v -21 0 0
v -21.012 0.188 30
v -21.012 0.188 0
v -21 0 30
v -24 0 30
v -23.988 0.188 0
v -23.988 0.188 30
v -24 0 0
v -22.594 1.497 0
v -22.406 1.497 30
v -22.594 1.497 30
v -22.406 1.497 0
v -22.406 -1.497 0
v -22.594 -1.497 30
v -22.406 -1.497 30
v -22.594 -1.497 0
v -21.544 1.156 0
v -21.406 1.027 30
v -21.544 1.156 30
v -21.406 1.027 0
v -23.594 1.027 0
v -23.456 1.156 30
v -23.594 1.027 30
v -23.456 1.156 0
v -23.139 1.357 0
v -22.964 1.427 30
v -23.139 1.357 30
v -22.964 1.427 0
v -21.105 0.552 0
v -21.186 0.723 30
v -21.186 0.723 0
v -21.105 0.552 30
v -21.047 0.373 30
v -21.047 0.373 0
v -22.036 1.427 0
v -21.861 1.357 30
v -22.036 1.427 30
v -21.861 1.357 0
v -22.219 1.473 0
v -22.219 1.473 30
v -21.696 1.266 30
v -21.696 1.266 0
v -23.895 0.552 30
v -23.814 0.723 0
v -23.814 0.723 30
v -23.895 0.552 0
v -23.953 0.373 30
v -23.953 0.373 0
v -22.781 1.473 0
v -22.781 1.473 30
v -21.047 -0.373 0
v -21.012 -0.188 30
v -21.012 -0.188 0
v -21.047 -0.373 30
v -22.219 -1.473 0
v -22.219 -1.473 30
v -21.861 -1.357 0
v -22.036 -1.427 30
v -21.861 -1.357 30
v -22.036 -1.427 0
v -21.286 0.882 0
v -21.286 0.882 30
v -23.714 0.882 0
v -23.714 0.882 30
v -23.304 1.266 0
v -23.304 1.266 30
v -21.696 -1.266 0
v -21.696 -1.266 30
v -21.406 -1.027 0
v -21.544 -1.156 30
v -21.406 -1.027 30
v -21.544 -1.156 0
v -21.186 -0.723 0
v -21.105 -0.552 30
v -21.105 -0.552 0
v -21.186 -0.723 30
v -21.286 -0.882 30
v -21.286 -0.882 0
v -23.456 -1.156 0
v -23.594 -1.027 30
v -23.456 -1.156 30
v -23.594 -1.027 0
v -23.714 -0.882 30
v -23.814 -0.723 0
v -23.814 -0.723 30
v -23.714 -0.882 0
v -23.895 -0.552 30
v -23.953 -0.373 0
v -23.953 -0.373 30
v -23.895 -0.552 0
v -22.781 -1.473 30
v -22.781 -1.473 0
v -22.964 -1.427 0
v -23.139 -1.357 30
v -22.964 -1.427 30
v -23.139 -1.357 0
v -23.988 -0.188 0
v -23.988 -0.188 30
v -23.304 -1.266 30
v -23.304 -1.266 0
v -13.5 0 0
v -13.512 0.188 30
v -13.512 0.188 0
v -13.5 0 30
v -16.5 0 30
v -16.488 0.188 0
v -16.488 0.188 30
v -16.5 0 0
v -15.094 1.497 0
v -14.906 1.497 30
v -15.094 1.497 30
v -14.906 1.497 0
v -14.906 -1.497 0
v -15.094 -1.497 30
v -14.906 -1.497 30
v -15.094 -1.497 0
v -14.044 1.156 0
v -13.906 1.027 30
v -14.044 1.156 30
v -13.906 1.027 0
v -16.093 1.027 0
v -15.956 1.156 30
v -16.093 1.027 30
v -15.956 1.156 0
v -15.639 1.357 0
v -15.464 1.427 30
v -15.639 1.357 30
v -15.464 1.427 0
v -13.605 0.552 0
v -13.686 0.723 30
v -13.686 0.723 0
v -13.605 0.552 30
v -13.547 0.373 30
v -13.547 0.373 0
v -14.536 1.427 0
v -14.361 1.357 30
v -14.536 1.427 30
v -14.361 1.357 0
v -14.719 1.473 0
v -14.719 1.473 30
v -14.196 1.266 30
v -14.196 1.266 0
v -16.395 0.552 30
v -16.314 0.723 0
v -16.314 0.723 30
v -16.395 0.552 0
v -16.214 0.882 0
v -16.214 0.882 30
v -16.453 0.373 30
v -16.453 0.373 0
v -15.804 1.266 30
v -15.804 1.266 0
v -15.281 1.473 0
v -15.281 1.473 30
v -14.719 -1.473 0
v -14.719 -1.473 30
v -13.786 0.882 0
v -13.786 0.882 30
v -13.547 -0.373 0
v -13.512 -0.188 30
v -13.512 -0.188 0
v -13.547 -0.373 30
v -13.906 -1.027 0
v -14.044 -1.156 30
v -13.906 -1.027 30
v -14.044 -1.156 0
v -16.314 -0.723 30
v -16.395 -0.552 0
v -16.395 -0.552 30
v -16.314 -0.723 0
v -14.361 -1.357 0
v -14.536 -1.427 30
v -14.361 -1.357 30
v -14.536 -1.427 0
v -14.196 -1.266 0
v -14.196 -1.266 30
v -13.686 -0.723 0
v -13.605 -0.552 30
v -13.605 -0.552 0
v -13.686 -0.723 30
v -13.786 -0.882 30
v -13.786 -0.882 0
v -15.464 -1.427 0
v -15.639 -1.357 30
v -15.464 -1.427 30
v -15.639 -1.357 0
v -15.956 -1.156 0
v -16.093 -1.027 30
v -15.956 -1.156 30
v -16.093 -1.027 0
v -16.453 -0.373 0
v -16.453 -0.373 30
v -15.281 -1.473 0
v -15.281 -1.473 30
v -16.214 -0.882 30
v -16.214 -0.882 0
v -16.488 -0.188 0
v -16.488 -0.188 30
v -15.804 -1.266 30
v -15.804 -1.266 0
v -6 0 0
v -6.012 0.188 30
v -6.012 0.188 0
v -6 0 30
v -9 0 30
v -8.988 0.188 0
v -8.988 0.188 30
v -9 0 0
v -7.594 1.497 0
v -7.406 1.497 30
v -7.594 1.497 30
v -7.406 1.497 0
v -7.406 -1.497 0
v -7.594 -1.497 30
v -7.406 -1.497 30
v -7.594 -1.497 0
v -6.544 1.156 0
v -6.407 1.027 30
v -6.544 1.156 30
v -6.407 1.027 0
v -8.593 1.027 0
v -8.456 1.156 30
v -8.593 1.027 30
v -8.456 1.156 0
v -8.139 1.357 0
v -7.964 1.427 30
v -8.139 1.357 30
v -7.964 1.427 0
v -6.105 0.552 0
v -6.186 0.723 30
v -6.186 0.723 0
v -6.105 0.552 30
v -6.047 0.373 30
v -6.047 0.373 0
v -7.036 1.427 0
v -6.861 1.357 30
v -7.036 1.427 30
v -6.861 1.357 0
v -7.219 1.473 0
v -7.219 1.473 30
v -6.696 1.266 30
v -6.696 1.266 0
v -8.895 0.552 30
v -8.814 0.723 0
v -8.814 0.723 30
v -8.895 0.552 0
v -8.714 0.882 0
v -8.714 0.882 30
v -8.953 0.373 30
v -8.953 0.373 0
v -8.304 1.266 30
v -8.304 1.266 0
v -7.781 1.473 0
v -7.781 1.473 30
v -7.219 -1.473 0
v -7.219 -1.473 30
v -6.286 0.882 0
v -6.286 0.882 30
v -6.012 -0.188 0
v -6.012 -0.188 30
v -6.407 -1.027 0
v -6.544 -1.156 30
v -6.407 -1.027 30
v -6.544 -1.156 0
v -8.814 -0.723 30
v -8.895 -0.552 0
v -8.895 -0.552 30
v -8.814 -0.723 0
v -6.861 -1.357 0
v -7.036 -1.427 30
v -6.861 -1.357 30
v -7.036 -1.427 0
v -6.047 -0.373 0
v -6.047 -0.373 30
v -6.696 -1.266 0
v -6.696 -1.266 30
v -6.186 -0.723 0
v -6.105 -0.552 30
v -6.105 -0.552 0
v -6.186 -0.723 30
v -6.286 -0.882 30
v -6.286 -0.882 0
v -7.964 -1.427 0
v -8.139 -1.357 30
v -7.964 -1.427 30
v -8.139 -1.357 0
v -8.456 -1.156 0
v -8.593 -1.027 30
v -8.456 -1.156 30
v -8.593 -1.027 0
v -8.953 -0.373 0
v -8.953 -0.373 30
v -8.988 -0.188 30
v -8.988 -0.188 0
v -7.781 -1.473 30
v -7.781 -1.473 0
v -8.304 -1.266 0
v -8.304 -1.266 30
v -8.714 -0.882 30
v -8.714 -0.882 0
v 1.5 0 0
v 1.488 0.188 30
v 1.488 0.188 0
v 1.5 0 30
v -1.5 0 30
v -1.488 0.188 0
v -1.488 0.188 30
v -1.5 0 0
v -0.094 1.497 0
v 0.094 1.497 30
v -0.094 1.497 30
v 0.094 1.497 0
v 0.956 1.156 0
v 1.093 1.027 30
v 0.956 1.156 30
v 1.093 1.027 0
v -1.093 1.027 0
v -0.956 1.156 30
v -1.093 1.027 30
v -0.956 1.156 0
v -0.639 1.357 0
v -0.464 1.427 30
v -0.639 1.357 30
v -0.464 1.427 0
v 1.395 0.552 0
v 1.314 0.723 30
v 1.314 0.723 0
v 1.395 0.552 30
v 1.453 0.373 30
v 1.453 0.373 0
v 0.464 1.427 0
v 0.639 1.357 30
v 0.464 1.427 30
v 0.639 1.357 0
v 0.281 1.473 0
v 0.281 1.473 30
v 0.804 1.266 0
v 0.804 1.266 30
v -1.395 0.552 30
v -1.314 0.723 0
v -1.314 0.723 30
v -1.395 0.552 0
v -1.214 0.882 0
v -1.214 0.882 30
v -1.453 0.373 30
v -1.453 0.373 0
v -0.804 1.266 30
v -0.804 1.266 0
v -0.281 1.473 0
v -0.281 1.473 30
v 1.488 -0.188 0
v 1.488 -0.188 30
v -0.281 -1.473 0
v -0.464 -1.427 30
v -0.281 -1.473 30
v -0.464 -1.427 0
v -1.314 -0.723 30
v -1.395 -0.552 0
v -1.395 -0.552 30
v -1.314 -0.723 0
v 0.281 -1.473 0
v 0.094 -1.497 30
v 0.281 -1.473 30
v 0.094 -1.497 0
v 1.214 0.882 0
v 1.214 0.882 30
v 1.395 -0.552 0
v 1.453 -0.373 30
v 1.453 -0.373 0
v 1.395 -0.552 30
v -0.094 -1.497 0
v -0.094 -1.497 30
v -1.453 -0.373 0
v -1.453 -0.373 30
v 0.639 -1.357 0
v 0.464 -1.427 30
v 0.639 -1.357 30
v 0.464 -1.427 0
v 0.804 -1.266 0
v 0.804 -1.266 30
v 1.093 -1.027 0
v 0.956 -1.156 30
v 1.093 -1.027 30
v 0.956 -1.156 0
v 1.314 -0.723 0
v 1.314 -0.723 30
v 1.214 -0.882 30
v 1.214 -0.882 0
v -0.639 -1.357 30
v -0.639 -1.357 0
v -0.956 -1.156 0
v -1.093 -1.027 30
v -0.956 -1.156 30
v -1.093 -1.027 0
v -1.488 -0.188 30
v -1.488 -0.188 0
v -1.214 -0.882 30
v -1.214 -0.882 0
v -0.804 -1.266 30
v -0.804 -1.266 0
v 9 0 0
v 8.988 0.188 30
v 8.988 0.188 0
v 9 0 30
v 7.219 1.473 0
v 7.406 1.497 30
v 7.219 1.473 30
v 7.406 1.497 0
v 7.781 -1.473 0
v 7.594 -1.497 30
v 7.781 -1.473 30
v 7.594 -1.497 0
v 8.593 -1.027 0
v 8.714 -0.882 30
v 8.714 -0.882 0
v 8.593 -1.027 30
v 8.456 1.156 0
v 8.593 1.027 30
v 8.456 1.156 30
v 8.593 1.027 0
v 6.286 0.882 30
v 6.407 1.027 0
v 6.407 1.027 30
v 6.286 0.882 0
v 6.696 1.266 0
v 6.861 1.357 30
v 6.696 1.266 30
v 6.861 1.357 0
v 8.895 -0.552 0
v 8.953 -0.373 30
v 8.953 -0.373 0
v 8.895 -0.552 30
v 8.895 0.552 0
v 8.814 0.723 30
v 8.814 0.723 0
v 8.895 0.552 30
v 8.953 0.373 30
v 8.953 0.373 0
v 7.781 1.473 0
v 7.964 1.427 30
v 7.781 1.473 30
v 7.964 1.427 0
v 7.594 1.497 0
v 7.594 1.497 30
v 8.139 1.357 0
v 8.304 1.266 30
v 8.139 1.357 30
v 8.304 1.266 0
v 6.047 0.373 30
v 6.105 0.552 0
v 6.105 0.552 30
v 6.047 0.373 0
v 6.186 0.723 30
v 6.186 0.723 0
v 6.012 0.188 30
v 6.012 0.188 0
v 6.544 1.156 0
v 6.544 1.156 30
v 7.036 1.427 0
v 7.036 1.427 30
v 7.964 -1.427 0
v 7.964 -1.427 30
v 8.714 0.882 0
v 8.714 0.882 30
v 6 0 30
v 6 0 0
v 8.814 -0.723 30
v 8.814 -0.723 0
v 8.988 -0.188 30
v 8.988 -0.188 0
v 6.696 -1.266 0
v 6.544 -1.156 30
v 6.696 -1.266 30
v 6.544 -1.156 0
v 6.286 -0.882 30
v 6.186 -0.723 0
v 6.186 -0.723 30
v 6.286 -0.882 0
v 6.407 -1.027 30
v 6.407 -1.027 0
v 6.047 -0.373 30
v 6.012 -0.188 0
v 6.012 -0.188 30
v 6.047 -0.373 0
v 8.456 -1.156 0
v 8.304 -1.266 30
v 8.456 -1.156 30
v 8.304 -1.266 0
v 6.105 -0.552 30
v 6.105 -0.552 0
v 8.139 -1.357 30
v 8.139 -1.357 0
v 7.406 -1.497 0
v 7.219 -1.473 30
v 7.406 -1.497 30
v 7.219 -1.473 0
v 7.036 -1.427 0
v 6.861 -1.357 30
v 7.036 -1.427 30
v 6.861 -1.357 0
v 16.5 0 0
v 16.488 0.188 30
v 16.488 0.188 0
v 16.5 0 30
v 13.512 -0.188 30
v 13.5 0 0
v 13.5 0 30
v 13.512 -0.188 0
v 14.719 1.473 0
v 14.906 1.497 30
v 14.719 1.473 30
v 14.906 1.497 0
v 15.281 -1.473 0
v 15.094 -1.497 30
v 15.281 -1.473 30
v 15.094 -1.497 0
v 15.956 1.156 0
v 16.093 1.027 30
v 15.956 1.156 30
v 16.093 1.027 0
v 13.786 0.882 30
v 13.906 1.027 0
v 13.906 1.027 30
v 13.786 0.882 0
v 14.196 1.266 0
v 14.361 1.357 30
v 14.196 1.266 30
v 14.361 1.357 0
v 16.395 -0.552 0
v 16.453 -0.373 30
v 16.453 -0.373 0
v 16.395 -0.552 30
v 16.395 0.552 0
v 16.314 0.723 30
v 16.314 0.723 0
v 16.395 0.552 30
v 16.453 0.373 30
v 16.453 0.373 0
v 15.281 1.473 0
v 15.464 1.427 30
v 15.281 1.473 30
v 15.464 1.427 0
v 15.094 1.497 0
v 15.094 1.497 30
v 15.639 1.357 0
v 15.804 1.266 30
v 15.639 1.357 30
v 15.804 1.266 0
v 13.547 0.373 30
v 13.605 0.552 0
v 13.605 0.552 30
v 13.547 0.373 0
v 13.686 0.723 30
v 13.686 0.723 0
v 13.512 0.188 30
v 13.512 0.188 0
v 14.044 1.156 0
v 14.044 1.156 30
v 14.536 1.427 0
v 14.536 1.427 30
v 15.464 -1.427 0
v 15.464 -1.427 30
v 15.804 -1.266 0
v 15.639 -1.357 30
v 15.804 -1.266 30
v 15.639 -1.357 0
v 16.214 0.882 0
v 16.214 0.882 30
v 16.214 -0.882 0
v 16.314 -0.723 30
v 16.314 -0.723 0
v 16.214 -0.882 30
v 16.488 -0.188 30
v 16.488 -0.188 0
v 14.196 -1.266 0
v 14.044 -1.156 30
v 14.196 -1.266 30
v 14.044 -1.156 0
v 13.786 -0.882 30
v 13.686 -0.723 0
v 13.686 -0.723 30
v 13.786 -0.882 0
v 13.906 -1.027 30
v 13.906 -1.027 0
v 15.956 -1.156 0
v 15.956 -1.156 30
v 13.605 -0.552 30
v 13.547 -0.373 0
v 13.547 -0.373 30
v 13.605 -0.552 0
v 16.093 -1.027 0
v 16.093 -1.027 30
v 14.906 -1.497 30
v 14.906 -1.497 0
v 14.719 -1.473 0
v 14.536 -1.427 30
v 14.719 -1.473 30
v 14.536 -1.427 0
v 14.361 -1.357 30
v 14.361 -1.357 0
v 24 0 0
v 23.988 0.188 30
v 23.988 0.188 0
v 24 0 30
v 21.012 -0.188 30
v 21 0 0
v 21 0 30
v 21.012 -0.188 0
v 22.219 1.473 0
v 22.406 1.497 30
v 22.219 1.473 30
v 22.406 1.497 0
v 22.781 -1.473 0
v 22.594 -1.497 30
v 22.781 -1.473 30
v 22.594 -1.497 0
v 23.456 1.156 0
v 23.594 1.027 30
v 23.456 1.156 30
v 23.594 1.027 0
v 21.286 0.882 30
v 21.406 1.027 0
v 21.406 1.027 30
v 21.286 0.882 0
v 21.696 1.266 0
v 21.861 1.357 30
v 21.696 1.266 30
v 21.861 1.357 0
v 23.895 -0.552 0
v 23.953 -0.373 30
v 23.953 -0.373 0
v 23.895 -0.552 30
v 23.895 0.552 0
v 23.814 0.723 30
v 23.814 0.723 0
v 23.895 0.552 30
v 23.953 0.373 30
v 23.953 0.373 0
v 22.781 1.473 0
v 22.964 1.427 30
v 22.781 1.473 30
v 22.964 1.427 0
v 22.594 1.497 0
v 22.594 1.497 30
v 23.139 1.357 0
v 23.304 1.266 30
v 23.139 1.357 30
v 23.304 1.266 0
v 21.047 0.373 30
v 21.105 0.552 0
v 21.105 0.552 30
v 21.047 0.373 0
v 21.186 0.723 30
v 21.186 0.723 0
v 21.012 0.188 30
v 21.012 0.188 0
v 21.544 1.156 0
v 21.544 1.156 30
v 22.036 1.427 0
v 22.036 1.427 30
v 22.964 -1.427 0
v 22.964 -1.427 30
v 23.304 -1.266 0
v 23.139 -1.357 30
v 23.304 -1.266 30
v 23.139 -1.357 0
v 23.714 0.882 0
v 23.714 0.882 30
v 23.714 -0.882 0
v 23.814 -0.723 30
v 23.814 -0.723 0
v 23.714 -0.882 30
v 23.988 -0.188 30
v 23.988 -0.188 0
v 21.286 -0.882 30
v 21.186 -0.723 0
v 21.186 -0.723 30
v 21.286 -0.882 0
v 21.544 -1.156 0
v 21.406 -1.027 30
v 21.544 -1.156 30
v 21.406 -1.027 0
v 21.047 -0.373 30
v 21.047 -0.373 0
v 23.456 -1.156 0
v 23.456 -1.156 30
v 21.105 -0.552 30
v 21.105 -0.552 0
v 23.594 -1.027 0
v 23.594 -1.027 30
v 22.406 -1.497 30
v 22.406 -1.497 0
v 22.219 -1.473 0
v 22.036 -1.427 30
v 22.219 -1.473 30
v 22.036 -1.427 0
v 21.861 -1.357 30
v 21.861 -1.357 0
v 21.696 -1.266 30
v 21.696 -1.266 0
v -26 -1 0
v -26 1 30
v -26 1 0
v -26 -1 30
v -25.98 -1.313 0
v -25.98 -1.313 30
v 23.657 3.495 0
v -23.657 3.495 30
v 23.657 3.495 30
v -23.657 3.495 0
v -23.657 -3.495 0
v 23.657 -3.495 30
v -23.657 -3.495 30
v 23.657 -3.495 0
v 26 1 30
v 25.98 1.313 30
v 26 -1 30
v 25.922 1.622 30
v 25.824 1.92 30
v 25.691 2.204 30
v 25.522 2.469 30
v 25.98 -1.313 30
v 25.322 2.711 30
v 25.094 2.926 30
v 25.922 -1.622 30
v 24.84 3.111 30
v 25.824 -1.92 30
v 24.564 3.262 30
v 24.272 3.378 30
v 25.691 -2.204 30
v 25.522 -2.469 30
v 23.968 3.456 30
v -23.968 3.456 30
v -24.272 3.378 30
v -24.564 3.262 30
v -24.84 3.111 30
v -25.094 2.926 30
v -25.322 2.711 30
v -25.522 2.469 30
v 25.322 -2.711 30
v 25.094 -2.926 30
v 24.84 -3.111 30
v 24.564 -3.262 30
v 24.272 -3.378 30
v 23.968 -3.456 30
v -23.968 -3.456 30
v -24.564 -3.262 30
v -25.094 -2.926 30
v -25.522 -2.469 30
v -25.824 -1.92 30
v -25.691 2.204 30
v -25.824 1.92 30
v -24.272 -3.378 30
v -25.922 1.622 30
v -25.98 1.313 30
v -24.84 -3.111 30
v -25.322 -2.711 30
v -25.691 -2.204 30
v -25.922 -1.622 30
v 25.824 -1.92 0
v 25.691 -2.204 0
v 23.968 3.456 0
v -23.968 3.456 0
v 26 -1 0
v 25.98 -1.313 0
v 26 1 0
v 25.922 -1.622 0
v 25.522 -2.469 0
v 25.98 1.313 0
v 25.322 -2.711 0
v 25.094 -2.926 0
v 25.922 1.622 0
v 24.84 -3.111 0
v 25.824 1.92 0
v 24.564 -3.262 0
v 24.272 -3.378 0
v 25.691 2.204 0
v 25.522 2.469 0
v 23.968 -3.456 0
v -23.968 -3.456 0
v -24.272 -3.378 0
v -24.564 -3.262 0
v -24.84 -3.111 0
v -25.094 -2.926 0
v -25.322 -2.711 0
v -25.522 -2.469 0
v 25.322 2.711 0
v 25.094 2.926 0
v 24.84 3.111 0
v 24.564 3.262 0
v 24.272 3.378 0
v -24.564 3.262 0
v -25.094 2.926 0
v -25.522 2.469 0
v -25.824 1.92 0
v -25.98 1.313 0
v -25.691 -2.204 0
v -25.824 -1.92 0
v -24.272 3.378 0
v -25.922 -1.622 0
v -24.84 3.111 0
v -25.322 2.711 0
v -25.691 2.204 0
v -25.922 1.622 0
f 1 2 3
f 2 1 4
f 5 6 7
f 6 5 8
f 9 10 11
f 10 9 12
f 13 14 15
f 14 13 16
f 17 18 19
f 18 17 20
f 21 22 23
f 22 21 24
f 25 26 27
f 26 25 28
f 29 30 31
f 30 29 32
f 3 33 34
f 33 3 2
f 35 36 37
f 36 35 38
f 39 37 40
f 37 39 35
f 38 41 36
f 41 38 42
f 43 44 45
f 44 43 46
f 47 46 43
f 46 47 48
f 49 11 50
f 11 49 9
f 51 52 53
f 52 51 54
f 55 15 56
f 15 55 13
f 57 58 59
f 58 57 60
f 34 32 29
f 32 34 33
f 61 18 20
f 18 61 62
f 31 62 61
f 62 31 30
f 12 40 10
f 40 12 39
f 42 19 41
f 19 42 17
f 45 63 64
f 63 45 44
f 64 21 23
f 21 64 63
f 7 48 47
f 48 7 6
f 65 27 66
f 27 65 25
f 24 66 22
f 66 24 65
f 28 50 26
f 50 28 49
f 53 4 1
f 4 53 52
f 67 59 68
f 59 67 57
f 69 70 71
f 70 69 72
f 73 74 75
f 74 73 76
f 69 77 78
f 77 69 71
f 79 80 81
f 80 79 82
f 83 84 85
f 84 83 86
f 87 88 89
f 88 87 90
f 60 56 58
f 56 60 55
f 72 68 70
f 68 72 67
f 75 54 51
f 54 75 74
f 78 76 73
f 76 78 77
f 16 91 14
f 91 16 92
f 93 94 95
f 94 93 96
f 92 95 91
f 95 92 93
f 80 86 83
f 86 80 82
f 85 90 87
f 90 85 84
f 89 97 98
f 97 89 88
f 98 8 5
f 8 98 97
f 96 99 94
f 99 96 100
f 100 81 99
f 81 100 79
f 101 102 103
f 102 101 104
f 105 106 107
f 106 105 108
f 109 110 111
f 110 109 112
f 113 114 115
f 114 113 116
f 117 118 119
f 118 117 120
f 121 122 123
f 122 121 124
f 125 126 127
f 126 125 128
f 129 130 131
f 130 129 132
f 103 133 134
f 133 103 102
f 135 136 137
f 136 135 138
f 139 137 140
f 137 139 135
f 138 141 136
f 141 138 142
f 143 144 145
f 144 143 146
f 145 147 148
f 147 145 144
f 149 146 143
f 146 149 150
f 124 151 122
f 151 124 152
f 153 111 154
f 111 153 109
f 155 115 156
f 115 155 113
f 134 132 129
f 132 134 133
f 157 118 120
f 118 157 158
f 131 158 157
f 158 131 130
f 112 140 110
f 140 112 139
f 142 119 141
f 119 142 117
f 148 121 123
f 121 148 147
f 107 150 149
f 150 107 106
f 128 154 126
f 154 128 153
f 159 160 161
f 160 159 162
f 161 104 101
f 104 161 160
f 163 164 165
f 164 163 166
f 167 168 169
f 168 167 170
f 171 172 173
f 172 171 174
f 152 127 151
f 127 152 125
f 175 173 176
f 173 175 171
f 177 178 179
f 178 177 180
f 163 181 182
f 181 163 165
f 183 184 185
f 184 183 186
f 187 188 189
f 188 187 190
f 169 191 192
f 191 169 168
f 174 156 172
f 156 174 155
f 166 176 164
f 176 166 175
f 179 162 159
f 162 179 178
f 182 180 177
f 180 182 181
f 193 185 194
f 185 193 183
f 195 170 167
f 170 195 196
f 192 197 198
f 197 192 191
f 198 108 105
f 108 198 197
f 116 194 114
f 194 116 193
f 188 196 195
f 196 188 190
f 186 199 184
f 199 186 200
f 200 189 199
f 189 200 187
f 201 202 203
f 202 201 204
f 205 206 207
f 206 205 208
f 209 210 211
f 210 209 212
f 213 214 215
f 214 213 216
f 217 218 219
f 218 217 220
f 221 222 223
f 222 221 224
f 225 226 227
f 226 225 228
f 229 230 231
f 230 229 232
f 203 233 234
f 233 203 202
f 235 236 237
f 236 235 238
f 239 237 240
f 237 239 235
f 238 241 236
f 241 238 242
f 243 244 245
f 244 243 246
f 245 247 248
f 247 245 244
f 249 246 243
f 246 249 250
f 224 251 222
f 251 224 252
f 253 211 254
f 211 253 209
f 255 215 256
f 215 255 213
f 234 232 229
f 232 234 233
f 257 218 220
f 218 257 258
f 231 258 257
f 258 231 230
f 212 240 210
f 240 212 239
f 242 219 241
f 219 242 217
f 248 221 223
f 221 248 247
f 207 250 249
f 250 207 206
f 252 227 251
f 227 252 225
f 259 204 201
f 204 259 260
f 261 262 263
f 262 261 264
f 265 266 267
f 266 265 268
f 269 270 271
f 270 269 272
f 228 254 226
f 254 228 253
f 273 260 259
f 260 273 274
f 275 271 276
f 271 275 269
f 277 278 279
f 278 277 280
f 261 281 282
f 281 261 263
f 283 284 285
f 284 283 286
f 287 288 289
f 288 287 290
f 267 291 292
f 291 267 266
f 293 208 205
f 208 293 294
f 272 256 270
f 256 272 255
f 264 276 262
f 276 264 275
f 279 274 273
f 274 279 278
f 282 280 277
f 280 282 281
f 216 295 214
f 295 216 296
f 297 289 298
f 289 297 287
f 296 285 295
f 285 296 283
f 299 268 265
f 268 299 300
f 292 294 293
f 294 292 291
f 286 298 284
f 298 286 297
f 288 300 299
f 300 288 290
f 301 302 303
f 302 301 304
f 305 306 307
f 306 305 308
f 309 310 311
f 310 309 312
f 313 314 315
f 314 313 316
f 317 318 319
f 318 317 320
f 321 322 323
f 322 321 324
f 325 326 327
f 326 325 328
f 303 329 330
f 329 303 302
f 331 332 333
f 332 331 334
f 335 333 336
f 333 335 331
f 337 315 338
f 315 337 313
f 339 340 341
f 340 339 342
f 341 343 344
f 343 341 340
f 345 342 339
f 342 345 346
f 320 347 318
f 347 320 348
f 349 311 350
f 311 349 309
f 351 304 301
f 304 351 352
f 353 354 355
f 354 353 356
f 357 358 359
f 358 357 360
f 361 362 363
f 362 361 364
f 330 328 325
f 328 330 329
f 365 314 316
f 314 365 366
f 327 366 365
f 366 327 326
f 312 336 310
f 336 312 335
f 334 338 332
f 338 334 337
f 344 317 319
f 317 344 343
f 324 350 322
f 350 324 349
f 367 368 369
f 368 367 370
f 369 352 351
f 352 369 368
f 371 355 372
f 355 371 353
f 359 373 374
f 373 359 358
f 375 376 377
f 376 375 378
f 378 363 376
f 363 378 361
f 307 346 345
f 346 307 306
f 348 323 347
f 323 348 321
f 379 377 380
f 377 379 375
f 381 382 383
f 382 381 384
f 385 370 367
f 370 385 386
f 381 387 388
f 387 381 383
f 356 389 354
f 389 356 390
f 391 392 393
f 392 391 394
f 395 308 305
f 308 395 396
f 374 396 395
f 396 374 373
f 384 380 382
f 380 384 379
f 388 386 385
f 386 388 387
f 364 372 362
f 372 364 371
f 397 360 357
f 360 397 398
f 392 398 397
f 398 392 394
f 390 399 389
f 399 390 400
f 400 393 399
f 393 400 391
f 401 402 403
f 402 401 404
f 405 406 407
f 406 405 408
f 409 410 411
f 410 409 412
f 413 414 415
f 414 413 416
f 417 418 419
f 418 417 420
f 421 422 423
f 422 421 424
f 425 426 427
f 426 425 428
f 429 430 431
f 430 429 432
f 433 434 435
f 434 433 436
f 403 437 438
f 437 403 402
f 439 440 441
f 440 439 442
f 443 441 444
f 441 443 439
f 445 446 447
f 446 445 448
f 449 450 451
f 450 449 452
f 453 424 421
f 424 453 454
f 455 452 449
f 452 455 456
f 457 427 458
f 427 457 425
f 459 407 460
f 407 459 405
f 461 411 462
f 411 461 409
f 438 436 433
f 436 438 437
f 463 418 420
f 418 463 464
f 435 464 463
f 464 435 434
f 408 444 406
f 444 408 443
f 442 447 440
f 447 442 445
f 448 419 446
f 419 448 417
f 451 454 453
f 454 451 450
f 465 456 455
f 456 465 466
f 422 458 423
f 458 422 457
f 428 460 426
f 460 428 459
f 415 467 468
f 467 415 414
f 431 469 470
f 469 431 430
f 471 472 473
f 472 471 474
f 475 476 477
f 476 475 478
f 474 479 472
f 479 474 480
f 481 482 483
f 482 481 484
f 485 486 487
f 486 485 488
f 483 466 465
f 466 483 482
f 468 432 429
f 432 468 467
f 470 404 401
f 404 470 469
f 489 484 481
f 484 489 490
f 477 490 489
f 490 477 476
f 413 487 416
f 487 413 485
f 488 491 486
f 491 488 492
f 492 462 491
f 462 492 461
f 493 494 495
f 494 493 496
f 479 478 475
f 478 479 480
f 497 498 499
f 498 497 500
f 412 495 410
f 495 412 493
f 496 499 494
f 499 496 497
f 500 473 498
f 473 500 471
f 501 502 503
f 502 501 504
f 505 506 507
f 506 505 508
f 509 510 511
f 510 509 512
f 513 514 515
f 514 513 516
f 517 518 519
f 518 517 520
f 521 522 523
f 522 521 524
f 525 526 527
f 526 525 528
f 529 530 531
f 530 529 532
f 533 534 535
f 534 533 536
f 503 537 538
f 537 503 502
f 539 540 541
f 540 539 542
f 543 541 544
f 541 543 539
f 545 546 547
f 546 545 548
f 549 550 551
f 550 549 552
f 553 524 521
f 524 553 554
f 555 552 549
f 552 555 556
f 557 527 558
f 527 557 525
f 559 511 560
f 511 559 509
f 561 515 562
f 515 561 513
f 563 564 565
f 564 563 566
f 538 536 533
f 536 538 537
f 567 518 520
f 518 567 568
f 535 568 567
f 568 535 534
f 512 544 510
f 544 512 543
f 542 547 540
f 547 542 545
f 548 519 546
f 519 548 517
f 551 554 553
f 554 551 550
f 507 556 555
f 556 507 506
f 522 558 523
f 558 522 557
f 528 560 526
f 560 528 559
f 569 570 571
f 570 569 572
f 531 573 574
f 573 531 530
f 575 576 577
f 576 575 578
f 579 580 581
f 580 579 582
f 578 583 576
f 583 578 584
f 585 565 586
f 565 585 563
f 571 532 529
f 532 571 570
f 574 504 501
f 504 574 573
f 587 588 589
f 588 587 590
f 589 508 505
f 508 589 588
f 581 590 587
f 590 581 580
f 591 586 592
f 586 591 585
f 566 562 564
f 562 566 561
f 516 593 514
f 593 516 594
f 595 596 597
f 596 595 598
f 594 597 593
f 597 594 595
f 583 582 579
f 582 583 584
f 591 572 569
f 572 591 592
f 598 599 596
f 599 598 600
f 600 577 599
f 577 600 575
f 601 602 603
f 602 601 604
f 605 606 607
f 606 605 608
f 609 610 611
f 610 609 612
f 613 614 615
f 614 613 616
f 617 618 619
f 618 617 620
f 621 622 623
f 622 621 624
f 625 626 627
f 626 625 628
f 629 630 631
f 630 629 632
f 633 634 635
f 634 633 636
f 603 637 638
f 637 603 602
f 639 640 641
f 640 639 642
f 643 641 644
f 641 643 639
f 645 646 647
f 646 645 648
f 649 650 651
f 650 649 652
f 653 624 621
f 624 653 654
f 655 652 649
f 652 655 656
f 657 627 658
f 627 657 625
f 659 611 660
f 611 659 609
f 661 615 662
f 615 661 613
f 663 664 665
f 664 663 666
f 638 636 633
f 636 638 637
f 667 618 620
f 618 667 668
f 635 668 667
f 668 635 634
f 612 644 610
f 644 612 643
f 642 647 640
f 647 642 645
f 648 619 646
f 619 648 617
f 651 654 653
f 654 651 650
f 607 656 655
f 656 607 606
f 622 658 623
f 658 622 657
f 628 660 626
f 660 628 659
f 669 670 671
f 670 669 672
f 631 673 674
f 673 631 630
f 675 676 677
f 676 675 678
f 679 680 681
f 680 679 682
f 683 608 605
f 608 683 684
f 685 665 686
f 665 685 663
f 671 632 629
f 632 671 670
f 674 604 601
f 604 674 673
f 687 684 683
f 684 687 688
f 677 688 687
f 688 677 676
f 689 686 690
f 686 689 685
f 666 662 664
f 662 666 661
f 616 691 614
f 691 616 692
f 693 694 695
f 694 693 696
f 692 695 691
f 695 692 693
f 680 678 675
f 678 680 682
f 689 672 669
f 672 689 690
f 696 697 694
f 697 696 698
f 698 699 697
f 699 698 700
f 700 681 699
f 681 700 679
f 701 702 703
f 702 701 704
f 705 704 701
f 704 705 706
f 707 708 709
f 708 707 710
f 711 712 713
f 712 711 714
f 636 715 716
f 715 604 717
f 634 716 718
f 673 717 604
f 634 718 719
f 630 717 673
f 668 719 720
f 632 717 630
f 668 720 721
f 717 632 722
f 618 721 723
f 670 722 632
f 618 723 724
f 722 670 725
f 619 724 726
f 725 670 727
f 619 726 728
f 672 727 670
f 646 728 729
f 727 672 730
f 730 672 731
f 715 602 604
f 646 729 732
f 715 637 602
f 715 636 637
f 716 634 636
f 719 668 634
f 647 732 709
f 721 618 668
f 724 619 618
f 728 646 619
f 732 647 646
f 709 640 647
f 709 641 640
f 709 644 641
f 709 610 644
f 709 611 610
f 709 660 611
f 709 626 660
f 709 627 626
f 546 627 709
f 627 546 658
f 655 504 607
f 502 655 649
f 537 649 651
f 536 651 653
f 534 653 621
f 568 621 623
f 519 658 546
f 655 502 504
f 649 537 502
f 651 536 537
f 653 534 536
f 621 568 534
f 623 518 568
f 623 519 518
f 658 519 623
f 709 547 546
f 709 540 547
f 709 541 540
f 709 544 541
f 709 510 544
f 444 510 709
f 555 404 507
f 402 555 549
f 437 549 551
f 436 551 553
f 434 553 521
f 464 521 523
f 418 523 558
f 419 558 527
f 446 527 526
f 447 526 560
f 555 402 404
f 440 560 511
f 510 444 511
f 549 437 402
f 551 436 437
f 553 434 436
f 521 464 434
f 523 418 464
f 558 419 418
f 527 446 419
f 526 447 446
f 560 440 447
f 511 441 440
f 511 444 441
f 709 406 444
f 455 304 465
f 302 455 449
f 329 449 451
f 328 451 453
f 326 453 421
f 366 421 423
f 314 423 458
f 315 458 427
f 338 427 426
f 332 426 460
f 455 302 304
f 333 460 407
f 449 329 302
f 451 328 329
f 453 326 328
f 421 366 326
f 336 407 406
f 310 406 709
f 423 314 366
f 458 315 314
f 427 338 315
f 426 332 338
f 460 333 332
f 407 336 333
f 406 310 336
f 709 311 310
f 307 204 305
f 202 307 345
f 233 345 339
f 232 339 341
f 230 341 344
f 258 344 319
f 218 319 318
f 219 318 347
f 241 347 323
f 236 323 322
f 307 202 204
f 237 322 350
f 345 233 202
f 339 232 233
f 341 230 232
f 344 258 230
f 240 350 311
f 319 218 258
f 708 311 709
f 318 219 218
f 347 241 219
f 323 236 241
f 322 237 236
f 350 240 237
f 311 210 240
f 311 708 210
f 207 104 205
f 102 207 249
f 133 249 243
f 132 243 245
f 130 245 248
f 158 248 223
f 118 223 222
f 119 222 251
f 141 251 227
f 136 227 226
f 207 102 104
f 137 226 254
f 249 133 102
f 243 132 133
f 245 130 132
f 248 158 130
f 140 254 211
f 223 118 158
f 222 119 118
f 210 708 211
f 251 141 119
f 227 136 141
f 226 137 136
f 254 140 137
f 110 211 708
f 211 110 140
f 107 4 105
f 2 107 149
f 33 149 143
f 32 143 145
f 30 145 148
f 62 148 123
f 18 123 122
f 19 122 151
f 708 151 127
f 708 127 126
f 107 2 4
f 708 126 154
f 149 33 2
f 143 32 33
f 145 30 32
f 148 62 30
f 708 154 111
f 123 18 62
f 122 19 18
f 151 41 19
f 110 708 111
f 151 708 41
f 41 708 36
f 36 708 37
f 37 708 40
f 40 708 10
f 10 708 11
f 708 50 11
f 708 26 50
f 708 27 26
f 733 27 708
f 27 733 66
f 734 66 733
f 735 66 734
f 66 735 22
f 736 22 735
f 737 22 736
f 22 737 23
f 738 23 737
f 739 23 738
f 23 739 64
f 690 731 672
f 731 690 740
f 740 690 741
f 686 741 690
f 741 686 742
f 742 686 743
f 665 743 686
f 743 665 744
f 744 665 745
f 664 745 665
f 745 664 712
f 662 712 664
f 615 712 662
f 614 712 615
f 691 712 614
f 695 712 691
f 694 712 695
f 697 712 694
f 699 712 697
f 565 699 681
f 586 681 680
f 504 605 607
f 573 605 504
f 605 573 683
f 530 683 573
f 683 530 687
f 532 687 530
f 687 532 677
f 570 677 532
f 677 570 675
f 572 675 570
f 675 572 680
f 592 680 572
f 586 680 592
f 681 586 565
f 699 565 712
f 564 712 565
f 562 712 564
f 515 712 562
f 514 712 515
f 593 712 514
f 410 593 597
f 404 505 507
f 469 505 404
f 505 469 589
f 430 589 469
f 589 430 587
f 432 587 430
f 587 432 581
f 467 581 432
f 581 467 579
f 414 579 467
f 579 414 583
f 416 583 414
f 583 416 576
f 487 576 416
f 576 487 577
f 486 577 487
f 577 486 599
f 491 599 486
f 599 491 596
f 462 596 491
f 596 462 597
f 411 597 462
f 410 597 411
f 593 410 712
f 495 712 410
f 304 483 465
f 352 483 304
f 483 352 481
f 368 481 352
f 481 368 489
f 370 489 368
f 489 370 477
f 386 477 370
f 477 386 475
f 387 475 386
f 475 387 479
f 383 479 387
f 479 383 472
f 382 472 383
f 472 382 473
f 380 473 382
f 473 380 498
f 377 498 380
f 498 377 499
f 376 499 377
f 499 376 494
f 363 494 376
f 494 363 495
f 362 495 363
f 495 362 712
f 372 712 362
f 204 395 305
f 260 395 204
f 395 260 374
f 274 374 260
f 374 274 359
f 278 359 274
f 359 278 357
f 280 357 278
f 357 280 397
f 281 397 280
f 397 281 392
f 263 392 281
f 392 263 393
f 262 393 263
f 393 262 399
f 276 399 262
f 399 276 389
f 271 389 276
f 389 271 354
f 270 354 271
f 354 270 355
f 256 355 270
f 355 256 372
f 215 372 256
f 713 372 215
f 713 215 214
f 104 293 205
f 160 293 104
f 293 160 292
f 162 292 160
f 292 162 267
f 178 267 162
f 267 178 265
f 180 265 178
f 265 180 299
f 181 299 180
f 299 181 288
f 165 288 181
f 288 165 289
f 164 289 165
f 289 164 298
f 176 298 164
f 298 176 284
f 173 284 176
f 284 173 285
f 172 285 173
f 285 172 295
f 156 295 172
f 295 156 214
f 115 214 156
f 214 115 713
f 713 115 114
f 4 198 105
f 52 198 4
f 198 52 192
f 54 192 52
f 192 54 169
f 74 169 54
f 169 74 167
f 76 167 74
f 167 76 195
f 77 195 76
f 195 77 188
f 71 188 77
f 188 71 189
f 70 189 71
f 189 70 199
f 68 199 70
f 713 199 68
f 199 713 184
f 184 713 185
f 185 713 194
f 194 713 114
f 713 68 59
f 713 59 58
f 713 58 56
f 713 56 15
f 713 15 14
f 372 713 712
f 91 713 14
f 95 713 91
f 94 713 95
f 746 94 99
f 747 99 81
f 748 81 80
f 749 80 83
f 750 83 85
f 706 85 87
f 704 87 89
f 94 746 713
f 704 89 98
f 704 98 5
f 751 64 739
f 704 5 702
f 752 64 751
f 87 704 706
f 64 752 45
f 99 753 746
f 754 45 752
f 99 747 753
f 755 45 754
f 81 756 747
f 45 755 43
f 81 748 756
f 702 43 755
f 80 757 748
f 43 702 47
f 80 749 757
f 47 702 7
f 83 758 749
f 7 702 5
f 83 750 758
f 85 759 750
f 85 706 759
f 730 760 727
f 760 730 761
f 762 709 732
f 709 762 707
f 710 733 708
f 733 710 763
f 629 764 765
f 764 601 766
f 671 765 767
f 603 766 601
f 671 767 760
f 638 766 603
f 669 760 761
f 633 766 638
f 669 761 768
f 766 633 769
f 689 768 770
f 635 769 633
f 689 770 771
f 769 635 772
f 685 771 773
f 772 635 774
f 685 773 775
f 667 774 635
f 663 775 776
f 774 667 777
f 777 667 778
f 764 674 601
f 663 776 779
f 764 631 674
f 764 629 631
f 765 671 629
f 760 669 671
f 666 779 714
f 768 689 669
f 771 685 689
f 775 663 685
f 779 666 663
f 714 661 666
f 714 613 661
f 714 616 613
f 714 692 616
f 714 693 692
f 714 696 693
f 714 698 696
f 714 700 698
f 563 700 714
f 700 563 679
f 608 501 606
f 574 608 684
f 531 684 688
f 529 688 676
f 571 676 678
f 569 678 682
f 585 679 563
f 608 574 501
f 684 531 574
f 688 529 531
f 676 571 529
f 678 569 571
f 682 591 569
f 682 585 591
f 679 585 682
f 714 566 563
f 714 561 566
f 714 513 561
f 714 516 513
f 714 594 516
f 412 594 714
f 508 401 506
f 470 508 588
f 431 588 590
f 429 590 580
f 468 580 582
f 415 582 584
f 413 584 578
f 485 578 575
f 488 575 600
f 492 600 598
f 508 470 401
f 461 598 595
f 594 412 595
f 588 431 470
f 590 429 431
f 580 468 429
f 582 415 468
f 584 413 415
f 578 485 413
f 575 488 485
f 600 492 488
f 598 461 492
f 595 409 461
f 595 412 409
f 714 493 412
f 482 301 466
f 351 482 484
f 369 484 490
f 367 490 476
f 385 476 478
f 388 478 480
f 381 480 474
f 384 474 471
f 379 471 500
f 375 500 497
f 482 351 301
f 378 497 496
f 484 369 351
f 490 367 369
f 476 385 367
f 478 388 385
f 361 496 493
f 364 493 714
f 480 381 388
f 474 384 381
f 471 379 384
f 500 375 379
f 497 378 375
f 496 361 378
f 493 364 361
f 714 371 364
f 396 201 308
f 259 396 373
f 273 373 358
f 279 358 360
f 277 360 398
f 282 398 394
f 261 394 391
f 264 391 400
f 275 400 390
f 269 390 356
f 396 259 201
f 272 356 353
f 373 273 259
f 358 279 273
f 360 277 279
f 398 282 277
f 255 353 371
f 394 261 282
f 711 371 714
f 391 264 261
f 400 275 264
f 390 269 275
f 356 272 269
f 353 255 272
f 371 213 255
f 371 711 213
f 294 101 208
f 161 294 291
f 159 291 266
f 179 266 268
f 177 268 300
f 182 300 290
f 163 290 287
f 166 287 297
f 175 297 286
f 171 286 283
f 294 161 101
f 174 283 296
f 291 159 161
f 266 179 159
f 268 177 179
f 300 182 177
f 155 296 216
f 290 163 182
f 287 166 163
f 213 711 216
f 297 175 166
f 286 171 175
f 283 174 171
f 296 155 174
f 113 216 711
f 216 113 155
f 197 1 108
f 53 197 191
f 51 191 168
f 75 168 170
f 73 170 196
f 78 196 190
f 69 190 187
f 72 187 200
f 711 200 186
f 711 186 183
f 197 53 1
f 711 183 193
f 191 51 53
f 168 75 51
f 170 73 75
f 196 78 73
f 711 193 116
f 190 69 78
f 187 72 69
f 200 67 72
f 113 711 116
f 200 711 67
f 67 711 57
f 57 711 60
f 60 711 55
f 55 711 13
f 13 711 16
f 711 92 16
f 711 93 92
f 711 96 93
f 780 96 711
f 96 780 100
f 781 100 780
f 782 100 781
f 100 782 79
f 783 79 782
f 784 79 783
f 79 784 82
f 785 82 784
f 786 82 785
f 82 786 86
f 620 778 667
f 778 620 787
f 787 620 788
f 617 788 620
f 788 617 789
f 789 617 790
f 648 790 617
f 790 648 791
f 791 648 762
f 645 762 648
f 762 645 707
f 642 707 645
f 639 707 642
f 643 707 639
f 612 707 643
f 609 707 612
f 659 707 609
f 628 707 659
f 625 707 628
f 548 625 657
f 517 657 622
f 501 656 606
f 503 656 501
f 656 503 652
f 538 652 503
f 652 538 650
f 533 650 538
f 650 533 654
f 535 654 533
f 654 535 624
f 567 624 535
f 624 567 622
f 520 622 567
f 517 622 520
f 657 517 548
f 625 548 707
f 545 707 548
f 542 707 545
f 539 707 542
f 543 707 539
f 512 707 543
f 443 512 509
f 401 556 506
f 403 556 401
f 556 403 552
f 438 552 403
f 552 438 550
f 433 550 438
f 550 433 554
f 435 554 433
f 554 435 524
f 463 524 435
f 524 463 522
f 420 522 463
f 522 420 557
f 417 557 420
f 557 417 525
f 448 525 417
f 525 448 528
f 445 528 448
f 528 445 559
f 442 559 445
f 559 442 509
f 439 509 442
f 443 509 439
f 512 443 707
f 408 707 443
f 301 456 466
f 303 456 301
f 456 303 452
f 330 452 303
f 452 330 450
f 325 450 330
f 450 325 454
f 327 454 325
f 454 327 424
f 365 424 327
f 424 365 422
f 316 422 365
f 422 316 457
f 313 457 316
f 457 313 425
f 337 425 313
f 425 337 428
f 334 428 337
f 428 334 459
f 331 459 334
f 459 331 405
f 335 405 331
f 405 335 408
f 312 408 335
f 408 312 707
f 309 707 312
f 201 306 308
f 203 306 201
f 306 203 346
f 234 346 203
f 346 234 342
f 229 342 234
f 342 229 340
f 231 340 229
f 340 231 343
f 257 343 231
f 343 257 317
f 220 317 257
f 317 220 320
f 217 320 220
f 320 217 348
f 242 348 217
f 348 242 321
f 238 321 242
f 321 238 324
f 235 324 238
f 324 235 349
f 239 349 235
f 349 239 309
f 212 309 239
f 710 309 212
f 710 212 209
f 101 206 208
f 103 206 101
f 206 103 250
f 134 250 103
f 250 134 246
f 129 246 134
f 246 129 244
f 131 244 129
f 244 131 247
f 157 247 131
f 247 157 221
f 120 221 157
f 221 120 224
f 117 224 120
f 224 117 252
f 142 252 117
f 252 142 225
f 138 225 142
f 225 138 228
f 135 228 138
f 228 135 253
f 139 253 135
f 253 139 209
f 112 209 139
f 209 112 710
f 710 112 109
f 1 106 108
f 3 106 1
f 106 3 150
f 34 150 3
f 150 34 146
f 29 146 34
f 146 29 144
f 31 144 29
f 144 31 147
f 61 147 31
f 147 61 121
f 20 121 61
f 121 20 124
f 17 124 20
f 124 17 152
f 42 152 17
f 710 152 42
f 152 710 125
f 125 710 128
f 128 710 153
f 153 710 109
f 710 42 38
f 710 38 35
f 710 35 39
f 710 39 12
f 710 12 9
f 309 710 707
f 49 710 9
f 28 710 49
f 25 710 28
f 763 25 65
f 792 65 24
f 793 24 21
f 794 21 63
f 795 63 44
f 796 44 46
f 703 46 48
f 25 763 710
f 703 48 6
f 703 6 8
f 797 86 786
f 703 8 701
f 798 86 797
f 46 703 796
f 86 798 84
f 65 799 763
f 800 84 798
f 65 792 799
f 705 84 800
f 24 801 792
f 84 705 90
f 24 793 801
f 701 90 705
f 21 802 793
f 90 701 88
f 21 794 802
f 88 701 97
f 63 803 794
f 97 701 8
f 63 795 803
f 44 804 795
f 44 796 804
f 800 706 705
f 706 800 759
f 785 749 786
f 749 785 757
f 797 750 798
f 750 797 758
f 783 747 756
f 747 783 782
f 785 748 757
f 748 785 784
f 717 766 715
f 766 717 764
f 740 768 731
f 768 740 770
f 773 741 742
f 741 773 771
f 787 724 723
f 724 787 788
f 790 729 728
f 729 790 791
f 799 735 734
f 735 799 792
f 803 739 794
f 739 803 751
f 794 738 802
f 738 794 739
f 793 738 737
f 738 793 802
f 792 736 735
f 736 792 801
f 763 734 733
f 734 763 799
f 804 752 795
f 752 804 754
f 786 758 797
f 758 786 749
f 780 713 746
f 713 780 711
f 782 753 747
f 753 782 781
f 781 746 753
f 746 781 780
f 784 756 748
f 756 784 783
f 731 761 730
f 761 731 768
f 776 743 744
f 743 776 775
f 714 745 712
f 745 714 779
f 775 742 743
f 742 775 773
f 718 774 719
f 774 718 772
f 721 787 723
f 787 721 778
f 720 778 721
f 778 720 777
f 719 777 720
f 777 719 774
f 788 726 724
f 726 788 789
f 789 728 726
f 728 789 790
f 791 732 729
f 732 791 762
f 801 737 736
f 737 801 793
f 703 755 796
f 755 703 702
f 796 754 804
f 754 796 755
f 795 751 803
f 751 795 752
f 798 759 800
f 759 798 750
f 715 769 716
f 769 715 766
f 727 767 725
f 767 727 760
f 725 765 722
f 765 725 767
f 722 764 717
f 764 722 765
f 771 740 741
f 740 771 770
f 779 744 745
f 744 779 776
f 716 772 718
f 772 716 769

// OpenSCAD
$fn = 50;


difference() {
	union() {
		translate(v = [0, 0, 0]) {
			rotate(a = [0, 0, 0]) {
				hull() {
					translate(v = [-23.5000000000, 1.0000000000, 0]) {
						rotate(a = [0, 0, 0]) {
							translate(v = [0, 0, 0]) {
								rotate(a = [0, 0, 0]) {
									cylinder(h = 30, r = 2.5000000000);
								}
							}
						}
					}
					translate(v = [23.5000000000, 1.0000000000, 0]) {
						rotate(a = [0, 0, 0]) {
							translate(v = [0, 0, 0]) {
								rotate(a = [0, 0, 0]) {
									cylinder(h = 30, r = 2.5000000000);
								}
							}
						}
					}
					translate(v = [-23.5000000000, -1.0000000000, 0]) {
						rotate(a = [0, 0, 0]) {
							translate(v = [0, 0, 0]) {
								rotate(a = [0, 0, 0]) {
									cylinder(h = 30, r = 2.5000000000);
								}
							}
						}
					}
					translate(v = [23.5000000000, -1.0000000000, 0]) {
						rotate(a = [0, 0, 0]) {
							translate(v = [0, 0, 0]) {
								rotate(a = [0, 0, 0]) {
									cylinder(h = 30, r = 2.5000000000);
								}
							}
						}
					}
				}
			}
		}
	}
	union() {
		translate(v = [-22.5000000000, 0.0000000000, 0]) {
			rotate(a = [0, 0, 0]) {
				translate(v = [0, 0, -50]) {
					rotate(a = [0, 0, 0]) {
						cylinder(h = 100, r = 1.5000000000);
					}
				}
			}
		}
		translate(v = [-15.0000000000, 0.0000000000, 0]) {
			rotate(a = [0, 0, 0]) {
				translate(v = [0, 0, -50]) {
					rotate(a = [0, 0, 0]) {
						cylinder(h = 100, r = 1.5000000000);
					}
				}
			}
		}
		translate(v = [-7.5000000000, 0.0000000000, 0]) {
			rotate(a = [0, 0, 0]) {
				translate(v = [0, 0, -50]) {
					rotate(a = [0, 0, 0]) {
						cylinder(h = 100, r = 1.5000000000);
					}
				}
			}
		}
		translate(v = [0.0000000000, 0.0000000000, 0]) {
			rotate(a = [0, 0, 0]) {
				translate(v = [0, 0, -50]) {
					rotate(a = [0, 0, 0]) {
						cylinder(h = 100, r = 1.5000000000);
					}
				}
			}
		}
		translate(v = [7.5000000000, 0.0000000000, 0]) {
			rotate(a = [0, 0, 0]) {
				translate(v = [0, 0, -50]) {
					rotate(a = [0, 0, 0]) {
						cylinder(h = 100, r = 1.5000000000);
					}
				}
			}
		}
		translate(v = [15.0000000000, 0.0000000000, 0]) {
			rotate(a = [0, 0, 0]) {
				translate(v = [0, 0, -50]) {
					rotate(a = [0, 0, 0]) {
						cylinder(h = 100, r = 1.5000000000);
					}
				}
			}
		}
		translate(v = [22.5000000000, 0.0000000000, 0]) {
			rotate(a = [0, 0, 0]) {
				translate(v = [0, 0, -50]) {
					rotate(a = [0, 0, 0]) {
						cylinder(h = 100, r = 1.5000000000);
					}
				}
			}
		}
	}
}
